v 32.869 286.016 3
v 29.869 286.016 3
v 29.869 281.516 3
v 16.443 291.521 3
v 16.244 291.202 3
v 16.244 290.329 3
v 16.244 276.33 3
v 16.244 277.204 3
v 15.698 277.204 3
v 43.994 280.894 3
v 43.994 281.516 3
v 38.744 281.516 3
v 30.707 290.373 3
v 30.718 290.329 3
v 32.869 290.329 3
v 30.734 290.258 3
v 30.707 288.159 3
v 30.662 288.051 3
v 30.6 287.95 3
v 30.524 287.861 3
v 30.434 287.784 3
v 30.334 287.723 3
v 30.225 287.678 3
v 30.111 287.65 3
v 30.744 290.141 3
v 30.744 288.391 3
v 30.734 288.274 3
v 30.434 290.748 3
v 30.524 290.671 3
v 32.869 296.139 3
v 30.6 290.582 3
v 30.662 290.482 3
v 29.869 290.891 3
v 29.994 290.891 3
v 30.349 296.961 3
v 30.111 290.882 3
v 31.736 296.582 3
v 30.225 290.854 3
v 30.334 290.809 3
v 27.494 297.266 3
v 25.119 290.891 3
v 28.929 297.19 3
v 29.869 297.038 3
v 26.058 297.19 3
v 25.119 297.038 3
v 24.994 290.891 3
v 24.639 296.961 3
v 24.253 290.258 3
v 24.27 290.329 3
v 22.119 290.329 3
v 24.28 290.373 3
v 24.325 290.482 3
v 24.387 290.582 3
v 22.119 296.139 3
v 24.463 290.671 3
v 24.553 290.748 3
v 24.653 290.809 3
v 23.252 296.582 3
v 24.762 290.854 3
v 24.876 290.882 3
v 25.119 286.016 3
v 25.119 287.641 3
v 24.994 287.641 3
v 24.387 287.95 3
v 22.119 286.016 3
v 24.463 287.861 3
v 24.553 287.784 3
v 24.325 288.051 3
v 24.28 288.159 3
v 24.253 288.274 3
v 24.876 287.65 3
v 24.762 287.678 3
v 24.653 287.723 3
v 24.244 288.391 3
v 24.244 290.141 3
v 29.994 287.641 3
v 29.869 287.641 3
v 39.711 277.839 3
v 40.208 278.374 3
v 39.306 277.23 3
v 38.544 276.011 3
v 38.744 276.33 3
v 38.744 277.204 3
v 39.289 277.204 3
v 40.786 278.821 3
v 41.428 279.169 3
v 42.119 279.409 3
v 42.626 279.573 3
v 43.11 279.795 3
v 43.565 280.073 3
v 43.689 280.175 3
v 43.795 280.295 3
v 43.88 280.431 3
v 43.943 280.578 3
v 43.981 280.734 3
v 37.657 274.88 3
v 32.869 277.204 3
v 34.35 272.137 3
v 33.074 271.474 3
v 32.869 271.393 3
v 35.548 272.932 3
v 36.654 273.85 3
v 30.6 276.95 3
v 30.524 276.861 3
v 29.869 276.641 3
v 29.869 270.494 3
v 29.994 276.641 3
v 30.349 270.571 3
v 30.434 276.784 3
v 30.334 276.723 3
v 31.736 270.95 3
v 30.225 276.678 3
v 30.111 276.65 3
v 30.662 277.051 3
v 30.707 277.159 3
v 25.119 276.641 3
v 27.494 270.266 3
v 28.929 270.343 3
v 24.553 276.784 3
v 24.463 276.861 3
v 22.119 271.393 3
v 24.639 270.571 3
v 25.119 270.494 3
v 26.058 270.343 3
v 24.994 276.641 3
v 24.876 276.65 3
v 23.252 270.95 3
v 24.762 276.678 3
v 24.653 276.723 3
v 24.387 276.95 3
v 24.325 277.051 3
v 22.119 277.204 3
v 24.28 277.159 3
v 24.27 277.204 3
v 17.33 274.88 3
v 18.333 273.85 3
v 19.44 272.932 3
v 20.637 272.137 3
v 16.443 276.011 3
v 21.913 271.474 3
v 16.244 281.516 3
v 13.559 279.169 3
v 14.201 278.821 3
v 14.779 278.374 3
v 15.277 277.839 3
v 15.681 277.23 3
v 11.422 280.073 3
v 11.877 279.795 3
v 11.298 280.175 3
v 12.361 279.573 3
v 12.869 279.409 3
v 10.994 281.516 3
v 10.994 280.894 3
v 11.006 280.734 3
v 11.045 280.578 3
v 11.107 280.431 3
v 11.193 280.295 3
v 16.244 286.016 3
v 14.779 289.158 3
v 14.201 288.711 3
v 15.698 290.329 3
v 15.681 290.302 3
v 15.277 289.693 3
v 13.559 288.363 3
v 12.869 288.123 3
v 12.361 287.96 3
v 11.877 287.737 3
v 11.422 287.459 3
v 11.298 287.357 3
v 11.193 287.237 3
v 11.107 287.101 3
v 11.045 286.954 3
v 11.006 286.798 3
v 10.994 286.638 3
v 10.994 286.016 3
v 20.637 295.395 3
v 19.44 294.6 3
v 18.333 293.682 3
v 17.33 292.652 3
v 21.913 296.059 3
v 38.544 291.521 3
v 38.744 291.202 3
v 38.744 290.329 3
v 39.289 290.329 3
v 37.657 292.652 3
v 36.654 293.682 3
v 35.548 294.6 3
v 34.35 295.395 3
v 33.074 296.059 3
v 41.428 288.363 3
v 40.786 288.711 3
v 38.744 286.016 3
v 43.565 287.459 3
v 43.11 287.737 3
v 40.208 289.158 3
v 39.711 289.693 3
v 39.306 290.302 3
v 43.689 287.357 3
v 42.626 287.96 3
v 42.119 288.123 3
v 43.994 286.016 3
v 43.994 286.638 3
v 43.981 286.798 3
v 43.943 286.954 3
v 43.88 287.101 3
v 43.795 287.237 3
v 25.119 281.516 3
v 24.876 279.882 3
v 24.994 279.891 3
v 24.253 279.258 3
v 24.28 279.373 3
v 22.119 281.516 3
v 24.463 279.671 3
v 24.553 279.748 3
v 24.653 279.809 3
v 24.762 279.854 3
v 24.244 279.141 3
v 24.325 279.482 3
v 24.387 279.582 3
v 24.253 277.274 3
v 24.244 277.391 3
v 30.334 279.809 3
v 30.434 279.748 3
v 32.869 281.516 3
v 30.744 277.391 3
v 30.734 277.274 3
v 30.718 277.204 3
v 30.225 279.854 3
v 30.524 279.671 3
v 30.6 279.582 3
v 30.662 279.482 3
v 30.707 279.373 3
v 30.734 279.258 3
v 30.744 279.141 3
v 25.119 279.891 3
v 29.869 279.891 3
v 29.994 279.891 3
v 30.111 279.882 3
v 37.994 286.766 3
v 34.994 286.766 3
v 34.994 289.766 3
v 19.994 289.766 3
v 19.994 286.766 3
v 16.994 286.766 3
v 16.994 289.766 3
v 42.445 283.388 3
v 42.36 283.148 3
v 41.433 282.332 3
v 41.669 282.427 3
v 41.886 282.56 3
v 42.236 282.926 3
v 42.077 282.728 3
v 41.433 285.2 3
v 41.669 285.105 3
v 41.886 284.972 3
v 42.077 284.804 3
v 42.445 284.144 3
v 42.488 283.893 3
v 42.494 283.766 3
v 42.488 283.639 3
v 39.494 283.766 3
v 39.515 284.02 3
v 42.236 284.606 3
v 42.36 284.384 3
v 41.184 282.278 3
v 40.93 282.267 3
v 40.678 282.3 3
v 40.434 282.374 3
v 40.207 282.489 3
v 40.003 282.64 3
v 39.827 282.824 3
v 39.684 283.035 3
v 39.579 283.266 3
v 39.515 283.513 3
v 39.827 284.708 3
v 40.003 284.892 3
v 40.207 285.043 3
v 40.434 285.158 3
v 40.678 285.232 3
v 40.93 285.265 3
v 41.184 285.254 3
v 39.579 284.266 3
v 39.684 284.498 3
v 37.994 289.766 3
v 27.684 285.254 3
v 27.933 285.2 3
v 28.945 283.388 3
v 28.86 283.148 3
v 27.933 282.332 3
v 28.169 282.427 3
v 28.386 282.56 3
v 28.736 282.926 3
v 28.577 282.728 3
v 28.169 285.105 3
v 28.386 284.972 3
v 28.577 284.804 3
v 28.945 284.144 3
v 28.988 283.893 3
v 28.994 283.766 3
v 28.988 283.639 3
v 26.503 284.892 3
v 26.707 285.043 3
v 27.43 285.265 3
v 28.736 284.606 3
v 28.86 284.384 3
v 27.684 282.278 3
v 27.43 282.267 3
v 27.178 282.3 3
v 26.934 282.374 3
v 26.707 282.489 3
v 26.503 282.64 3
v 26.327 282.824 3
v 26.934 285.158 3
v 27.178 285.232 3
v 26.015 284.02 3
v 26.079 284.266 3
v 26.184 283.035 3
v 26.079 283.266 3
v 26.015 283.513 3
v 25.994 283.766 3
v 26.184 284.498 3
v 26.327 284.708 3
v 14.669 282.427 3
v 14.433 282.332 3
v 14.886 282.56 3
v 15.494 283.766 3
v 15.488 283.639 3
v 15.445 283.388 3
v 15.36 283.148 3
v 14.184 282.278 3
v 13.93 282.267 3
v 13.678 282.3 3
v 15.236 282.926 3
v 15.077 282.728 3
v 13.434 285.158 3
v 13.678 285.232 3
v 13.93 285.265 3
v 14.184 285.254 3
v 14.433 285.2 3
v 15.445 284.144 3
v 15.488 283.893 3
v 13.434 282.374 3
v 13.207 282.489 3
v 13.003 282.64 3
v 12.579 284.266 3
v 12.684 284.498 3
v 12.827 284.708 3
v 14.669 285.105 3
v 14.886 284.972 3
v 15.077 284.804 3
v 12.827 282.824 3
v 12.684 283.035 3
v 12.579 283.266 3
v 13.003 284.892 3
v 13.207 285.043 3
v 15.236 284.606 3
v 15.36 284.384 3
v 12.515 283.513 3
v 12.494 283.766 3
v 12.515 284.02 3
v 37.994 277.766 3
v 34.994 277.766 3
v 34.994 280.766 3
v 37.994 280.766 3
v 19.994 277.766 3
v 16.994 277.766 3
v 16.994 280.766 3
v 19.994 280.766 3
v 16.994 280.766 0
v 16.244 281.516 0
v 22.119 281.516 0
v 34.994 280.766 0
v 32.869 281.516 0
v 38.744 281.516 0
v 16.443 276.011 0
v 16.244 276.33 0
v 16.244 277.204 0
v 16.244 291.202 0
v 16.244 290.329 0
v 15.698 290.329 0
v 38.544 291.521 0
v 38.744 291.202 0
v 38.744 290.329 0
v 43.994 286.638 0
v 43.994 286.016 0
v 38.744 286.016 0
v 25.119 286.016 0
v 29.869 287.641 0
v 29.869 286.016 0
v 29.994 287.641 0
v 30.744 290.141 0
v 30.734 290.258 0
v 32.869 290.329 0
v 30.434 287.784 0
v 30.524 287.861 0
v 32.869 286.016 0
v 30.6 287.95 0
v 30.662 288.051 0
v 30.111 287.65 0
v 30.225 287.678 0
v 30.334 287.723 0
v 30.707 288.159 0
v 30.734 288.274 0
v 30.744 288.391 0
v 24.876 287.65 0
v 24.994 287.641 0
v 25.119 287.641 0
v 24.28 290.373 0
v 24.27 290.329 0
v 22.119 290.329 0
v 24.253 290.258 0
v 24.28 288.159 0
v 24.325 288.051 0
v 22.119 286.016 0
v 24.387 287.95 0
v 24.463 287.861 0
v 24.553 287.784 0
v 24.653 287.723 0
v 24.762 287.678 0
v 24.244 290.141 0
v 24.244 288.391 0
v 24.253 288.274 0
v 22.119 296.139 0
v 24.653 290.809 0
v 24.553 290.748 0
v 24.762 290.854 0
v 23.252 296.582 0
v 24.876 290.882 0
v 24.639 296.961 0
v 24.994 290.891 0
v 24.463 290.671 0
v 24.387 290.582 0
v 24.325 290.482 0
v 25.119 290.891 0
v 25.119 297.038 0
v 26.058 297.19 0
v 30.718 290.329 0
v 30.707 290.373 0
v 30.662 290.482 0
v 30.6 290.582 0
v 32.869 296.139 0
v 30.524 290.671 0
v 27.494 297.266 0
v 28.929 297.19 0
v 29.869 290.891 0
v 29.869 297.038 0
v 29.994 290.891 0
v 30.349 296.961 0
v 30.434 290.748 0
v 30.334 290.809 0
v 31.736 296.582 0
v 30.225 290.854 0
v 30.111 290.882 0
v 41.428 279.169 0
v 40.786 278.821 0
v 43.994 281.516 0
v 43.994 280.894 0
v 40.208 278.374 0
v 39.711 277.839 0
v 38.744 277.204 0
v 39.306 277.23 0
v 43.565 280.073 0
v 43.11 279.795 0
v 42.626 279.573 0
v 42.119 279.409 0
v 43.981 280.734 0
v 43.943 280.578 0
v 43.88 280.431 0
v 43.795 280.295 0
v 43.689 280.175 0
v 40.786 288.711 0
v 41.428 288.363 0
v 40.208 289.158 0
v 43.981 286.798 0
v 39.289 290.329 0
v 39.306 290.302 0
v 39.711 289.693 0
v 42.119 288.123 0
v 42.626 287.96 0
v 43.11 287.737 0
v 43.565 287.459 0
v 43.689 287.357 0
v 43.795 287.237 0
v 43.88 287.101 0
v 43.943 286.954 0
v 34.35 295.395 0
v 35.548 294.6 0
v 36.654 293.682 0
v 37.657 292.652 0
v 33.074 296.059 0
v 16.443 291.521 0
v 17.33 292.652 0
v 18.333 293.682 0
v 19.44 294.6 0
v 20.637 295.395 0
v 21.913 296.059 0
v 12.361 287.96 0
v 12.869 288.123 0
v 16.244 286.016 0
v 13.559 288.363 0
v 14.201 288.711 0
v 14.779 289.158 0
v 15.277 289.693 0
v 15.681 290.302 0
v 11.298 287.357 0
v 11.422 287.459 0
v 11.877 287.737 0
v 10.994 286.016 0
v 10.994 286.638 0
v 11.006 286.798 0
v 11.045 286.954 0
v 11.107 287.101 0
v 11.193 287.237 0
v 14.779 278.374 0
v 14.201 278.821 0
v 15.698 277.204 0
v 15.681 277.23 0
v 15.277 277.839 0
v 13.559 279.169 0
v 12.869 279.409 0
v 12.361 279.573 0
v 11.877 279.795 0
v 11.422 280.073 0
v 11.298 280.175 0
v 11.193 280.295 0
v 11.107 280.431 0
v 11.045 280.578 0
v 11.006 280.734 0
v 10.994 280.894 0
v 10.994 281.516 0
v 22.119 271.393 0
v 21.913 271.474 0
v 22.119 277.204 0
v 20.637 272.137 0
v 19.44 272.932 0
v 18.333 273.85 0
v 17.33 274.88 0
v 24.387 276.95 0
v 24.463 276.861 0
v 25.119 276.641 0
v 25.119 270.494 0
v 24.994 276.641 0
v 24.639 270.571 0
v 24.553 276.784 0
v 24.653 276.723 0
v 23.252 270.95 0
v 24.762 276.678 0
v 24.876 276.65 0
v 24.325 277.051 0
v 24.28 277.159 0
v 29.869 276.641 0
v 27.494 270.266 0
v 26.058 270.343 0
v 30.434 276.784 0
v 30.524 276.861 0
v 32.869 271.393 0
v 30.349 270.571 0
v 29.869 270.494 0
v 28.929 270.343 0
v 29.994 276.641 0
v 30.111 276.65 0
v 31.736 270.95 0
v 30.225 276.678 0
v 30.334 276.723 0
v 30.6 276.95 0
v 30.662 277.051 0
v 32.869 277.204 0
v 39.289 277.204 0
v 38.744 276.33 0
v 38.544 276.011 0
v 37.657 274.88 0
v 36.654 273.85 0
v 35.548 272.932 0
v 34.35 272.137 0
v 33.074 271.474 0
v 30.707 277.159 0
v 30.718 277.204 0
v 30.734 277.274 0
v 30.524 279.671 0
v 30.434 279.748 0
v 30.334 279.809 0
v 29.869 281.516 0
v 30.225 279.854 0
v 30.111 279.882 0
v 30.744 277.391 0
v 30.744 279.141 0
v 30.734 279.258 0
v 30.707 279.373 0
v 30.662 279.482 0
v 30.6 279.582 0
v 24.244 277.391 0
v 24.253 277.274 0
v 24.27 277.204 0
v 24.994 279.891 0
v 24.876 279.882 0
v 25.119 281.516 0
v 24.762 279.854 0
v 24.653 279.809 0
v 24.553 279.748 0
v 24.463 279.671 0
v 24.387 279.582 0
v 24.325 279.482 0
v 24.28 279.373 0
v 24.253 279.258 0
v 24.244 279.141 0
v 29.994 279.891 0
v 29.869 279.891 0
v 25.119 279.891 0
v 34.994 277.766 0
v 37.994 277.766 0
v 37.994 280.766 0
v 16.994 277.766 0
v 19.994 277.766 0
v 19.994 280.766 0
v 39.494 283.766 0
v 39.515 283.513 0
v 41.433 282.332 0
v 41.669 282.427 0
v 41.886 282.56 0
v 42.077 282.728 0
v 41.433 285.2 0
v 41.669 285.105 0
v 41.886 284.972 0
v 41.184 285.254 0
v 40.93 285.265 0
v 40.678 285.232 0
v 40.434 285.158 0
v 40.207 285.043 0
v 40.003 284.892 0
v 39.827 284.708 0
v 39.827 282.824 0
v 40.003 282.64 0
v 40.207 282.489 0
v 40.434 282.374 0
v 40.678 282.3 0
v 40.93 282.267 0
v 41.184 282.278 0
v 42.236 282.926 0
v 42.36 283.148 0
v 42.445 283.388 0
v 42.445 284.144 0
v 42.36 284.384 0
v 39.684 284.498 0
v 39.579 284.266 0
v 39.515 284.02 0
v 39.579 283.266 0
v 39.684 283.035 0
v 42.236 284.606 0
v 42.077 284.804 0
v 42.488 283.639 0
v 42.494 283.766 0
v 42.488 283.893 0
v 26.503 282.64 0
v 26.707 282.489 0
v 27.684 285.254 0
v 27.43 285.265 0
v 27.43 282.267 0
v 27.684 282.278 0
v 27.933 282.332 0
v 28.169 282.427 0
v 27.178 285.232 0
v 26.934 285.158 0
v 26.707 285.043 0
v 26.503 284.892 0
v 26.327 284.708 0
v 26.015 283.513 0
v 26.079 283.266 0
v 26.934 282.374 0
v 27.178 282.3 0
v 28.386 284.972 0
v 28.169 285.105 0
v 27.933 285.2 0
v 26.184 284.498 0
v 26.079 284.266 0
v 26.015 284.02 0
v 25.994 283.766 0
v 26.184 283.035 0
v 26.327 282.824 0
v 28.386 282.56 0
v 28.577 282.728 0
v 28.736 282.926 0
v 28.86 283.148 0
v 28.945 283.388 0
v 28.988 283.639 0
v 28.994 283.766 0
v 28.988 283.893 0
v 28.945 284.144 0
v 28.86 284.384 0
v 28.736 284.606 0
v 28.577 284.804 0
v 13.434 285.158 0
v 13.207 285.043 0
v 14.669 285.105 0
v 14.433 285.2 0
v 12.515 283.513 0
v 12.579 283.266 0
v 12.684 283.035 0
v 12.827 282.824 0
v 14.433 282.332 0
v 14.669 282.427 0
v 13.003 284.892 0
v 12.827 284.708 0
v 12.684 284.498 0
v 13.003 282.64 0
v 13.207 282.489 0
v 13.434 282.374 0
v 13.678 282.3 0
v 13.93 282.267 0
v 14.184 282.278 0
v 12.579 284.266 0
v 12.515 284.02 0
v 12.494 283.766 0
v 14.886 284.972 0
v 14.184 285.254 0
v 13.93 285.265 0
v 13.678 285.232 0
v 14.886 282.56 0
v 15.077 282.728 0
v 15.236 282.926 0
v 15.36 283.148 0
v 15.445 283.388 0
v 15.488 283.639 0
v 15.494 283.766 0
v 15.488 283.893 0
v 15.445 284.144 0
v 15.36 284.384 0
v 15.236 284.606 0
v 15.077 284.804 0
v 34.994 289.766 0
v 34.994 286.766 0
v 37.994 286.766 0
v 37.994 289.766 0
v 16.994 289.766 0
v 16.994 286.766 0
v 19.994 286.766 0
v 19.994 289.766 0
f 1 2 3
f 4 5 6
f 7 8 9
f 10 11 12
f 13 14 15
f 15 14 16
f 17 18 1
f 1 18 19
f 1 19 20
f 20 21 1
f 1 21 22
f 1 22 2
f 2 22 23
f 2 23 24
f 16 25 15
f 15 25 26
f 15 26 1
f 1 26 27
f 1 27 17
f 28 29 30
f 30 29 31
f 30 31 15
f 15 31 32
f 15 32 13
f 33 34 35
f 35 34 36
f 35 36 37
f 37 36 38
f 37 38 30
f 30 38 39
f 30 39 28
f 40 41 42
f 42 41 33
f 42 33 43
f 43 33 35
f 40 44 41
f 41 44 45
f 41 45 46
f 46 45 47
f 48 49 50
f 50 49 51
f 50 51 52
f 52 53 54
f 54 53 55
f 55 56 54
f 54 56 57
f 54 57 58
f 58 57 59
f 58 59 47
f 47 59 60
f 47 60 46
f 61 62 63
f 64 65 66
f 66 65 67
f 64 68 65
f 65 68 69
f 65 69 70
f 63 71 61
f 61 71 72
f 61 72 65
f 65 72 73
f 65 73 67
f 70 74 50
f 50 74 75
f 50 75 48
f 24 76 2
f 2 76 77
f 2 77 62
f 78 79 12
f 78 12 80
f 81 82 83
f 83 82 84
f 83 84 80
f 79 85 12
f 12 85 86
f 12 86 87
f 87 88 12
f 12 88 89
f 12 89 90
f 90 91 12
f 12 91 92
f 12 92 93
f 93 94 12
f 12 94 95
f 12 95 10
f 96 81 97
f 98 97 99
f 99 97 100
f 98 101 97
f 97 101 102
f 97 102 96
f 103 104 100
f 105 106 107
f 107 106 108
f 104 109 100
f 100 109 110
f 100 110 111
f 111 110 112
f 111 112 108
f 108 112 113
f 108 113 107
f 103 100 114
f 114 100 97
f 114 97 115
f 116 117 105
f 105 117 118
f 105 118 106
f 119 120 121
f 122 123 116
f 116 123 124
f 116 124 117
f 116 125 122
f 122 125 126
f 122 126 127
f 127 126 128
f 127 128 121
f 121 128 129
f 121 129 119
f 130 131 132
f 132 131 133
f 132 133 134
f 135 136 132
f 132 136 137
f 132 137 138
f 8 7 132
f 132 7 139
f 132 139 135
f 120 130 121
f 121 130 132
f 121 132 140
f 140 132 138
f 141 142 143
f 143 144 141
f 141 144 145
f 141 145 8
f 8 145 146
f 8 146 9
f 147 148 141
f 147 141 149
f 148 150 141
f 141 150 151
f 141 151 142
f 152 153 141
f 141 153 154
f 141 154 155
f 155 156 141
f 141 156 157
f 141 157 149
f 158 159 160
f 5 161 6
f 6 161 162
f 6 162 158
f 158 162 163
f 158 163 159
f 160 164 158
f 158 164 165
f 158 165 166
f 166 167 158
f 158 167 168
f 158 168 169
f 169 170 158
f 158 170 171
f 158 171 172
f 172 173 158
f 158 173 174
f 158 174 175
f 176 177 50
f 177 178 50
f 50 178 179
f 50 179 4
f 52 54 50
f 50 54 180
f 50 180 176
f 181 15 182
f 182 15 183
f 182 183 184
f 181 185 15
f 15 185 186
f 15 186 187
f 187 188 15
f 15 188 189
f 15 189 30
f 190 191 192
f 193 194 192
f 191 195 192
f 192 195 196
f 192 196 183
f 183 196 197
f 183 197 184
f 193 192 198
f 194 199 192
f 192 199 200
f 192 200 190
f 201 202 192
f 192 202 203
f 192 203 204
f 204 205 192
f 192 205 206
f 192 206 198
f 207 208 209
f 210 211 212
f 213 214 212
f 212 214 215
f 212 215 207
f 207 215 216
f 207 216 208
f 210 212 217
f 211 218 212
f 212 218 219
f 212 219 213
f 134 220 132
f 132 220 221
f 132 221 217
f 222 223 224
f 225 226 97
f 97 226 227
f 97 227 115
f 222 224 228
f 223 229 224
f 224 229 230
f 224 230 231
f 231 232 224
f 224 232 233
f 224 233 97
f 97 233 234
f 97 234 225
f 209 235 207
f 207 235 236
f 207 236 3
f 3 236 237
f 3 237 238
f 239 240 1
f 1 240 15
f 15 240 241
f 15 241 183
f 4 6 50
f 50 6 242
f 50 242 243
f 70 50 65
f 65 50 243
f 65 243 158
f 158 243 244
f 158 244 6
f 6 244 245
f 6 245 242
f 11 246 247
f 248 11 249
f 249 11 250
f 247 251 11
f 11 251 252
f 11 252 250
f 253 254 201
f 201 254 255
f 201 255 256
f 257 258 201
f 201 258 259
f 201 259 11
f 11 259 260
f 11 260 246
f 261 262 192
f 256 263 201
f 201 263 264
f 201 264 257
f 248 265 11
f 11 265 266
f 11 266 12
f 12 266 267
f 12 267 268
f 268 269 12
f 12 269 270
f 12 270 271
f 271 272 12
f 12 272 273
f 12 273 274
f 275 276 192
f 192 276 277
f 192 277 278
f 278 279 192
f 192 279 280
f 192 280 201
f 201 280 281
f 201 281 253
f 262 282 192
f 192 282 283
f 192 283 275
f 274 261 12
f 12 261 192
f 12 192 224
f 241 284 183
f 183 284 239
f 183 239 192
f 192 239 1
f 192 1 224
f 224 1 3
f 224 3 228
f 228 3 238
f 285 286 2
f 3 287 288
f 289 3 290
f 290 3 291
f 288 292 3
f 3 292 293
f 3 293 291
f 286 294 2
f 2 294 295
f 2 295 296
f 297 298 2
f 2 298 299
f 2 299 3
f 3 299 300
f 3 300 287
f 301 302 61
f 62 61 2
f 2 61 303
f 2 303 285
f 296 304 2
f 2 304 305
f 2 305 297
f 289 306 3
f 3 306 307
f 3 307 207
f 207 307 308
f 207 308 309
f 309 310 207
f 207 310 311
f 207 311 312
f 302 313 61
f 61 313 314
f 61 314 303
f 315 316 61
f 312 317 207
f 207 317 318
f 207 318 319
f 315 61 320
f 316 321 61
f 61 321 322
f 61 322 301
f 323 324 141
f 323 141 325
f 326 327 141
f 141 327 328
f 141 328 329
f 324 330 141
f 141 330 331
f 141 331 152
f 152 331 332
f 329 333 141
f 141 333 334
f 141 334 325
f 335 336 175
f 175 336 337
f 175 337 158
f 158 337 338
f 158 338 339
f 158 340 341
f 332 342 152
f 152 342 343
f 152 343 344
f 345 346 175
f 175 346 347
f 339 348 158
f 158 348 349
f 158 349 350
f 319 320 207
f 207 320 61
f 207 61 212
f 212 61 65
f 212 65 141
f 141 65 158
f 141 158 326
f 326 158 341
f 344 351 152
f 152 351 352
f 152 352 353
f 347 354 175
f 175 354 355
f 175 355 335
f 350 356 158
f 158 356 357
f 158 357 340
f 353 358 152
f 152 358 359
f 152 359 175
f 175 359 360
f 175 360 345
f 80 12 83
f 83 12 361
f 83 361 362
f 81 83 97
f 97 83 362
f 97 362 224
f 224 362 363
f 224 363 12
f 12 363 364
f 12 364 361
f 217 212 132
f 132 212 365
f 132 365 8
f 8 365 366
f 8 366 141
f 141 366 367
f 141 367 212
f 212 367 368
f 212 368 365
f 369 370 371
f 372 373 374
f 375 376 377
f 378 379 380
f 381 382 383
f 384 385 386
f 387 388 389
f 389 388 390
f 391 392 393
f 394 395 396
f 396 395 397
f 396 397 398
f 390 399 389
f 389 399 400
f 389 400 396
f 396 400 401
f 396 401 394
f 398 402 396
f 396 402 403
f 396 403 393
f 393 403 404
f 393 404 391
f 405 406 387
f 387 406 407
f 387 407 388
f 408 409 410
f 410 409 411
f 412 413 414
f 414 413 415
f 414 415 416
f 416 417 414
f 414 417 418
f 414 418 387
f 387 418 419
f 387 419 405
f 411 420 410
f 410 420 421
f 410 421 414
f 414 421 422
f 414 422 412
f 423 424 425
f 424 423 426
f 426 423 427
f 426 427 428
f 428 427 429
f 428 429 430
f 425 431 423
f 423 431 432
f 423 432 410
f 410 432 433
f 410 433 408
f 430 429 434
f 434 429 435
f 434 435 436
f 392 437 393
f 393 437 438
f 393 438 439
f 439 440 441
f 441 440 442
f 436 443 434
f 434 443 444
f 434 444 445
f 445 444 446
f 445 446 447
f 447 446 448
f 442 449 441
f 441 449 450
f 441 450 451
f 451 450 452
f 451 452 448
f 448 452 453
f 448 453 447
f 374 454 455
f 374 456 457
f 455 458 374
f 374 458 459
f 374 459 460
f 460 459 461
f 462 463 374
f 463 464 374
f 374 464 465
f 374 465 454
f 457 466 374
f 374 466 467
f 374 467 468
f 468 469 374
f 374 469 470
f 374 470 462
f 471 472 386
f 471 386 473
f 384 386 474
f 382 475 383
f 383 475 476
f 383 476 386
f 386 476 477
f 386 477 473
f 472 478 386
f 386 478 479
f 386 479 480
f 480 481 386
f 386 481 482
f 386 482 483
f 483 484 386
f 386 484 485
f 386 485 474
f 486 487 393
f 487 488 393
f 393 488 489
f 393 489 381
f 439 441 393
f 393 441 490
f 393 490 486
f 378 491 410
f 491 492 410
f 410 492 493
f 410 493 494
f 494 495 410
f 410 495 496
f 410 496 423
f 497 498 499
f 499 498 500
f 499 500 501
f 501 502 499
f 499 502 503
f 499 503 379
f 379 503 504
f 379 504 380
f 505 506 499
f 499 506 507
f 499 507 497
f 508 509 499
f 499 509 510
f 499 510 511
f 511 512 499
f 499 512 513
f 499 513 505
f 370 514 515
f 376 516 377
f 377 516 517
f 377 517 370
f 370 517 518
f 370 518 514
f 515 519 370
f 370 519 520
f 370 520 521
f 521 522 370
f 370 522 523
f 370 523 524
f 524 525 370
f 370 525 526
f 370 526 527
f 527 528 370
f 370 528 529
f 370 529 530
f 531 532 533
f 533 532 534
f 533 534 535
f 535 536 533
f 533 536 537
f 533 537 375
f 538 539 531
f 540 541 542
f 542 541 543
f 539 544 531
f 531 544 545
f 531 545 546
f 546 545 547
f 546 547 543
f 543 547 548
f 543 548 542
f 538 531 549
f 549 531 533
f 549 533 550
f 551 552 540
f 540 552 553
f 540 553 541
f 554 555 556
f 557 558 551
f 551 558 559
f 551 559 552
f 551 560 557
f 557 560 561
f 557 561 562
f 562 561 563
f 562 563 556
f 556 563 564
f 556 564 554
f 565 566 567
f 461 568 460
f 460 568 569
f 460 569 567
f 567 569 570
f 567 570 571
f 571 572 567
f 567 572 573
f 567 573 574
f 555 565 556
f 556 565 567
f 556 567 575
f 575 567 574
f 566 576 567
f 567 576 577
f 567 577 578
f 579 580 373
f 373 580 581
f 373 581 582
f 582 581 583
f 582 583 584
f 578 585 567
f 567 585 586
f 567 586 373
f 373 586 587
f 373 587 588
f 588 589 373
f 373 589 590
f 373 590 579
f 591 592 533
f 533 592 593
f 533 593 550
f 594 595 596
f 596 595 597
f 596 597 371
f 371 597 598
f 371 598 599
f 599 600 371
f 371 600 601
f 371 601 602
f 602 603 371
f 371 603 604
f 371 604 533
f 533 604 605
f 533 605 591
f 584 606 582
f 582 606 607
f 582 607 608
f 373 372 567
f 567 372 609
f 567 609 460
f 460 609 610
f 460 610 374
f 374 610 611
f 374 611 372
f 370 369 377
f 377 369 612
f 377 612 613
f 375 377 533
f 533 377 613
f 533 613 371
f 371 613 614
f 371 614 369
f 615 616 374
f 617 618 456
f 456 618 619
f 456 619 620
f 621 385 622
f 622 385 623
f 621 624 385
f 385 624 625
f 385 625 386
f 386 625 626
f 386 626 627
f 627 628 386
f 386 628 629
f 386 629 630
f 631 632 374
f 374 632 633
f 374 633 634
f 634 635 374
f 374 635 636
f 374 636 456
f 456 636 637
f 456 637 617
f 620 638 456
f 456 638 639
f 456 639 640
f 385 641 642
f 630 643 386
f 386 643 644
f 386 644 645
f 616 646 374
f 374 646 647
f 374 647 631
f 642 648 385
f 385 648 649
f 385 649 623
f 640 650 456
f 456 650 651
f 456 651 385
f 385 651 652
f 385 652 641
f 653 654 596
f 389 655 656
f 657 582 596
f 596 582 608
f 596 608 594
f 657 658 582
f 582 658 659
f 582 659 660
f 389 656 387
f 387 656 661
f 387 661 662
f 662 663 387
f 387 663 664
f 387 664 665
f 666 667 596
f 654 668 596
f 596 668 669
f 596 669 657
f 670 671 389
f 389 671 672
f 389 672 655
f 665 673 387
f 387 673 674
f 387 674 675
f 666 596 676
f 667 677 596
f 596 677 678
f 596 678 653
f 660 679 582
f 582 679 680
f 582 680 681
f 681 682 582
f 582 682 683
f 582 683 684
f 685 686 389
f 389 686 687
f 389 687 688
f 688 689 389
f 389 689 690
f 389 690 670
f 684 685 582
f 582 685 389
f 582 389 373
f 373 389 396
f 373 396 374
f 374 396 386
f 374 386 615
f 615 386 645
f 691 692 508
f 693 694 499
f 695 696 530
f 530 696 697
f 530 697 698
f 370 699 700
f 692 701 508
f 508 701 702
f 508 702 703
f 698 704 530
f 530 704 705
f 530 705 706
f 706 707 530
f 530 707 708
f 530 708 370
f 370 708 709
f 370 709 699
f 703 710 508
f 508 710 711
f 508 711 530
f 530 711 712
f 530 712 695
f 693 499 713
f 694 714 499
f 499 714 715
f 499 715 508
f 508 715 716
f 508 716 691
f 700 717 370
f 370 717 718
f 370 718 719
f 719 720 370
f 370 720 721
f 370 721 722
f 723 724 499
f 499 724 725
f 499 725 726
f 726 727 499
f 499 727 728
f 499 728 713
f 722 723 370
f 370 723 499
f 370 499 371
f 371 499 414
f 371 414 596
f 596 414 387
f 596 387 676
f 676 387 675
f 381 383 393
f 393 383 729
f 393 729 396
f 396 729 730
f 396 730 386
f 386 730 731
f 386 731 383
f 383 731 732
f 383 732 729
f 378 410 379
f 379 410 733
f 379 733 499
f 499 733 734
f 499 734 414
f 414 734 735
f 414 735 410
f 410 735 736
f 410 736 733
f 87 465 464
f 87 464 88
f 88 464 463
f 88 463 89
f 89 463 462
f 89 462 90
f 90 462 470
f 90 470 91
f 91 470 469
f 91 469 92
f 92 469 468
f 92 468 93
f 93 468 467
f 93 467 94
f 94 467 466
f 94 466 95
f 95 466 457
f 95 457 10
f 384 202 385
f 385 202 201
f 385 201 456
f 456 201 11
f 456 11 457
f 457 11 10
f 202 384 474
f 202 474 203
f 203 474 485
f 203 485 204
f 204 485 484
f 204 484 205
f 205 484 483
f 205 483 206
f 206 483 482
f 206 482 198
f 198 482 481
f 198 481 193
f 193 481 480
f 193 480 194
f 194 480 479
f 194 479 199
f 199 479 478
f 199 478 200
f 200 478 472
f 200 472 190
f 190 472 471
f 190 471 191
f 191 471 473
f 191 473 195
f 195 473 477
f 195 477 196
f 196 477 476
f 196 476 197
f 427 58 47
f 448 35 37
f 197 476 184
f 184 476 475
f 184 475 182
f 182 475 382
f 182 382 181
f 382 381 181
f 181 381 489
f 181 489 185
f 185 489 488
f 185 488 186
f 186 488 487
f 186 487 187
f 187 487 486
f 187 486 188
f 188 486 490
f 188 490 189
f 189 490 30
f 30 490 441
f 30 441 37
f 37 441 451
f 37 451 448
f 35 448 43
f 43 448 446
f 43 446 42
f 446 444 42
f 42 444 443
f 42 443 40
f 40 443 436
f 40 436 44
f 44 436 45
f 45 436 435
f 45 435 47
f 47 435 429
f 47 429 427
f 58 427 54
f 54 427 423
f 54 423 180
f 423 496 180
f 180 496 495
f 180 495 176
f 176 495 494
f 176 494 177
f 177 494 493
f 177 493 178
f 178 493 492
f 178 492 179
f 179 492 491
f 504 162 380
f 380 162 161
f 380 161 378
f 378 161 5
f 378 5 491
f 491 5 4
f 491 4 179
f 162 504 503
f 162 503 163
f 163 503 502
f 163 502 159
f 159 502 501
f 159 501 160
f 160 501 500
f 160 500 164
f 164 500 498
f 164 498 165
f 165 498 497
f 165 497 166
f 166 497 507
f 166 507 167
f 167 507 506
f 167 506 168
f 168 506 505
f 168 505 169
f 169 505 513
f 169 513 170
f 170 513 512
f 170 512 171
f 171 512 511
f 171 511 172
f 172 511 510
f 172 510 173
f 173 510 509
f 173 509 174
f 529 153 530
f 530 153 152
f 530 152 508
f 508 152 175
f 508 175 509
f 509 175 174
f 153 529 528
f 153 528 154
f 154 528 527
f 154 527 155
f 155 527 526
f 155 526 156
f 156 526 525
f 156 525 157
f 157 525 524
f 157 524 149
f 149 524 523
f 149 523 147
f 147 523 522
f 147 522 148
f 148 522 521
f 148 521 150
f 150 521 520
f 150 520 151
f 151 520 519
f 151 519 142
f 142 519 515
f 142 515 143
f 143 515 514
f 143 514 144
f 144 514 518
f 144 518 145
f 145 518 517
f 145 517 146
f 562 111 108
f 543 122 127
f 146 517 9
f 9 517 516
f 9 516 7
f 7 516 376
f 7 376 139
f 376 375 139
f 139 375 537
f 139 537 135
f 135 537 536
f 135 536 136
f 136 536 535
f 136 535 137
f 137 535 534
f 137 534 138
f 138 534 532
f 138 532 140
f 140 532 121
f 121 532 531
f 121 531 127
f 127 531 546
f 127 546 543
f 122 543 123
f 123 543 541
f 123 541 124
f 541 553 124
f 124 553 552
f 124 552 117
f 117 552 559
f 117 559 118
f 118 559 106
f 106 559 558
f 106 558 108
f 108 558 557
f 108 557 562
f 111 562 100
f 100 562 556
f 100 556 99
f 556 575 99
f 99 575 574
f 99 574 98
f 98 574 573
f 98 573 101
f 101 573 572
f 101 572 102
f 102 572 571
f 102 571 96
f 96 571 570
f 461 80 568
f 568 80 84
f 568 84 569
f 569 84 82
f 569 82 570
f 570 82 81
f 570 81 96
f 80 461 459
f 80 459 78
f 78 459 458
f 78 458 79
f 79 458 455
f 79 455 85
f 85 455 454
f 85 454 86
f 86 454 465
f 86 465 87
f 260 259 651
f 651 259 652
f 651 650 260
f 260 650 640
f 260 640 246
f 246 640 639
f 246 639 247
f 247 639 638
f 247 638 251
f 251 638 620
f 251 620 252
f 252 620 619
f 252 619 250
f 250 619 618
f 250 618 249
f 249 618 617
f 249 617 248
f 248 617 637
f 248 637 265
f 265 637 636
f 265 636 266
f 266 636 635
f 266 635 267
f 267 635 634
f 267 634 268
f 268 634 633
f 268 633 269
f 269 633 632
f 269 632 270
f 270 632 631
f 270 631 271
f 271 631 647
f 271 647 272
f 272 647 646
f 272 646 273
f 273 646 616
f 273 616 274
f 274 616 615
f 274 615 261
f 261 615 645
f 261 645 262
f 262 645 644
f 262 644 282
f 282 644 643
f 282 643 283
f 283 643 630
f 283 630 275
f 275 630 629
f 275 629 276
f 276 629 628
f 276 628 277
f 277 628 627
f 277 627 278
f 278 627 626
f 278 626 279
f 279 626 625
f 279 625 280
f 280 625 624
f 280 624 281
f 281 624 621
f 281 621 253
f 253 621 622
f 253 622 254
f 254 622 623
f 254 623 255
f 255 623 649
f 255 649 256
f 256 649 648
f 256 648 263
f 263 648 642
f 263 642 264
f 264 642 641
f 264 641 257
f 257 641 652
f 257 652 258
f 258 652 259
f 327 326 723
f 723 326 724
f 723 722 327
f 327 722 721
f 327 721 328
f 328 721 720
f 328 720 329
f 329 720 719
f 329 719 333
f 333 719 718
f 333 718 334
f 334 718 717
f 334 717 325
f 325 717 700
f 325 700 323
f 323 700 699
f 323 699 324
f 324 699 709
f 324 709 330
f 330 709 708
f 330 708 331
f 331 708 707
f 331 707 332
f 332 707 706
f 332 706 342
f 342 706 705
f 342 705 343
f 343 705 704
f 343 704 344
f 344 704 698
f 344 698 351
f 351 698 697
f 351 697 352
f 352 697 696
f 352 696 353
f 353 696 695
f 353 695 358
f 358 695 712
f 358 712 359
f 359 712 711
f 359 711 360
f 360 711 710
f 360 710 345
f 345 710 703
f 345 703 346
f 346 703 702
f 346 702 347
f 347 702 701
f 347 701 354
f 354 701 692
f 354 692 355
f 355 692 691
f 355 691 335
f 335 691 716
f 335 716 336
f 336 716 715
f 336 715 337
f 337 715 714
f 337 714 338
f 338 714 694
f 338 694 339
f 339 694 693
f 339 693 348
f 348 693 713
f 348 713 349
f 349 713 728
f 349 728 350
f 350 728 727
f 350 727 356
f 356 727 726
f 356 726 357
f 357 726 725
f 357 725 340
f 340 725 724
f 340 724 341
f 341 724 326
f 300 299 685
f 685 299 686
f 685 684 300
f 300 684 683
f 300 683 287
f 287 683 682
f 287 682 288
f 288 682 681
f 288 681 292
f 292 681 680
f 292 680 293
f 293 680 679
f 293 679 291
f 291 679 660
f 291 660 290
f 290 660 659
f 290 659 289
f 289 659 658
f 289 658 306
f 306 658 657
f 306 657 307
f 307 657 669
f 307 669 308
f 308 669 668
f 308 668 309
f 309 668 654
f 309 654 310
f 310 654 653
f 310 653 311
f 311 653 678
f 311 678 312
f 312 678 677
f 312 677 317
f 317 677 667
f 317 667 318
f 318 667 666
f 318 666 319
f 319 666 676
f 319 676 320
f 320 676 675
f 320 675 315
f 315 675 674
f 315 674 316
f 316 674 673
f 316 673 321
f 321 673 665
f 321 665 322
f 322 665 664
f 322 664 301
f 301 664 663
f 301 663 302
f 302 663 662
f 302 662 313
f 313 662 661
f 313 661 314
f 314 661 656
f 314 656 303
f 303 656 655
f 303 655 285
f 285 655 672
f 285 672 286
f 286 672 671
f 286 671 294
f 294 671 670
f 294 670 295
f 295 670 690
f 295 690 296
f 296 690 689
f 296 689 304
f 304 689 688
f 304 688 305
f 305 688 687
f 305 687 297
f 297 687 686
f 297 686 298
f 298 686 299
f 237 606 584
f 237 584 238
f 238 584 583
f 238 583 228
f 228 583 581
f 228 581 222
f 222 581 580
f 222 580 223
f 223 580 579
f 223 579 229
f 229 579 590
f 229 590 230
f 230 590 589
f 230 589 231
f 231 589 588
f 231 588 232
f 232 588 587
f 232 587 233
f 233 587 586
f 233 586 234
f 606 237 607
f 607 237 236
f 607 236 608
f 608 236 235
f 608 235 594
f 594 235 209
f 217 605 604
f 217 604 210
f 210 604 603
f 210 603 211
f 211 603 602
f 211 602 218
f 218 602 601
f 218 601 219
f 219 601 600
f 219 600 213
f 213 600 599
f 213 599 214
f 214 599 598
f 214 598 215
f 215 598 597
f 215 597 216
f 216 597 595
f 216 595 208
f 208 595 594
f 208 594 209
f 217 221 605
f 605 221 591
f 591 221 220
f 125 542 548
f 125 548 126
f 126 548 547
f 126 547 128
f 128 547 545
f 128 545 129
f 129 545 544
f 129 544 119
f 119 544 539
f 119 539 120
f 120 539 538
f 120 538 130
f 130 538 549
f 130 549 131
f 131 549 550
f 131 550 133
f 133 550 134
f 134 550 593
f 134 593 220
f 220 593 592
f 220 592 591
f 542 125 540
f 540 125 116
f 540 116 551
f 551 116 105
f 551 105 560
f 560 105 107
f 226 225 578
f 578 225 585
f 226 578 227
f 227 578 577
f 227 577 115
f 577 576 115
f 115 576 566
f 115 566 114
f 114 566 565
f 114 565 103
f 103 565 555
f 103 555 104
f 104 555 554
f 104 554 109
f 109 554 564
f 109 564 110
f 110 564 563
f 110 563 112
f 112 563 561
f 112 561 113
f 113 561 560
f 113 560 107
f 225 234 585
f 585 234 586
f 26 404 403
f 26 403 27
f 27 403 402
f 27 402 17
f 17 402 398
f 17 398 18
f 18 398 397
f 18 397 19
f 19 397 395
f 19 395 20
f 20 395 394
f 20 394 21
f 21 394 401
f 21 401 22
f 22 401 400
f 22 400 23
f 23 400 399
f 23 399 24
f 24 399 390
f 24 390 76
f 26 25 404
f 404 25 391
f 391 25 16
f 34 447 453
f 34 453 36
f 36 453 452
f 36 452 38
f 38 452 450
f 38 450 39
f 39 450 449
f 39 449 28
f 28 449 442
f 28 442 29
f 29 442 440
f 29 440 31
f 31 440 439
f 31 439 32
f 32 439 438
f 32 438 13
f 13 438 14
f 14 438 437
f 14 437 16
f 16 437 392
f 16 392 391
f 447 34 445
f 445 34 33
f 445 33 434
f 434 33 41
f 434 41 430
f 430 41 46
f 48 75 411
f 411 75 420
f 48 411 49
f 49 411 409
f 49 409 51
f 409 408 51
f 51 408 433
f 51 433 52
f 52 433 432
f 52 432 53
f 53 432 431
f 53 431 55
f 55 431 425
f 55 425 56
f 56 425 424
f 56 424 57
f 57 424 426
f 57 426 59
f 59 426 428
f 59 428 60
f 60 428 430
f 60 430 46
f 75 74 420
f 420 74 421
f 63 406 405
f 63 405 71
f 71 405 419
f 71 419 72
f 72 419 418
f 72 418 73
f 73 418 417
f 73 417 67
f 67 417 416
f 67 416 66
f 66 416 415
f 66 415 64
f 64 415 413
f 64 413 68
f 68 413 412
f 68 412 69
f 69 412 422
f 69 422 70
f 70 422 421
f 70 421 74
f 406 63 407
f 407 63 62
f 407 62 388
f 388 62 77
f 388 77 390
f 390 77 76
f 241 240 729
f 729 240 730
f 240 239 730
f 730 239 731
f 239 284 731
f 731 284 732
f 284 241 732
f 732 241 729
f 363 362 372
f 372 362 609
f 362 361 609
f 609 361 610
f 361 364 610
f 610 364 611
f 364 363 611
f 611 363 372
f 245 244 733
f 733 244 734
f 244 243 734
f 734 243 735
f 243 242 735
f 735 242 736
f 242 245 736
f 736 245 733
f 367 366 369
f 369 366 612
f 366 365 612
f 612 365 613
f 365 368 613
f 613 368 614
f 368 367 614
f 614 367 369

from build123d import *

# Parameters (mm, degrees)
MODEL_R                 = 1.5
MODEL_W                 = 3
MODEL_H                 = 3
SALIENTE_EXTRUIR1_DEPTH = 3


with BuildPart() as part:
    # Model → Saliente-Extruir1 (new body)
    with BuildSketch(Plane.XY):
        with BuildLine():
            Line((10.993657745, 286.638352596), (10.993657745, 280.893789949))
            ThreePointArc((10.993657745, 280.893789949), (11.107252484, 280.430879899), (11.422229173, 280.073138143))
            ThreePointArc((11.422229173, 280.073138143), (12.115845844, 279.676594232), (12.868657745, 279.408965008))
            ThreePointArc((12.868657745, 279.408965008), (14.499333705, 278.609421111), (15.681157745, 277.230411876))
            ThreePointArc((15.681157745, 277.230411876), (27.493657745, 270.266071273), (39.306157745, 277.230411876))
            ThreePointArc((39.306157745, 277.230411876), (40.487981784, 278.609421111), (42.118657745, 279.408965008))
            ThreePointArc((42.118657745, 279.408965008), (42.871469645, 279.676594232), (43.565086316, 280.073138143))
            ThreePointArc((43.565086316, 280.073138143), (43.880063005, 280.430879899), (43.993657745, 280.893789949))
            Line((43.993657745, 280.893789949), (43.993657745, 286.638352596))
            ThreePointArc((43.993657745, 286.638352596), (43.880063005, 287.101262646), (43.565086316, 287.459004403))
            ThreePointArc((43.565086316, 287.459004403), (42.871469645, 287.855548313), (42.118657745, 288.123177537))
            ThreePointArc((42.118657745, 288.123177537), (40.487981784, 288.922721434), (39.306157745, 290.301730669))
            ThreePointArc((39.306157745, 290.301730669), (27.493657745, 297.266071273), (15.681157745, 290.301730669))
            ThreePointArc((15.681157745, 290.301730669), (14.499333705, 288.922721434), (12.868657745, 288.123177537))
            ThreePointArc((12.868657745, 288.123177537), (12.115845844, 287.855548313), (11.422229173, 287.459004403))
            ThreePointArc((11.422229173, 287.459004403), (11.107252484, 287.101262646), (10.993657745, 286.638352596))
        make_face()
        with Locations((40.993657745, 283.766071273)):
            Circle(MODEL_R, mode=Mode.SUBTRACT)
        with Locations((13.993657745, 283.766071273)):
            Circle(MODEL_R, mode=Mode.SUBTRACT)
        with Locations((27.493657745, 283.766071273)):
            Circle(MODEL_R, mode=Mode.SUBTRACT)
        with Locations((36.493657745, 288.266071273)):
            Rectangle(MODEL_W, MODEL_H, mode=Mode.SUBTRACT)
        with Locations((36.493657745, 279.266071273)):
            Rectangle(MODEL_W, MODEL_H, mode=Mode.SUBTRACT)
        with Locations((18.493657745, 288.266071273)):
            Rectangle(MODEL_W, MODEL_H, mode=Mode.SUBTRACT)
        with Locations((18.493657745, 279.266071273)):
            Rectangle(MODEL_W, MODEL_H, mode=Mode.SUBTRACT)
        with BuildLine():
            Line((30.743657745, 277.391071273), (30.743657745, 279.141071273))
            ThreePointArc((30.743657745, 279.141071273), (30.52398783, 279.671401358), (29.993657745, 279.891071273))
            Line((29.993657745, 279.891071273), (24.993657745, 279.891071273))
            ThreePointArc((24.993657745, 279.891071273), (24.463327659, 279.671401358), (24.243657745, 279.141071273))
            Line((24.243657745, 279.141071273), (24.243657745, 277.391071273))
            ThreePointArc((24.243657745, 277.391071273), (24.463327659, 276.860741187), (24.993657745, 276.641071273))
            Line((24.993657745, 276.641071273), (29.993657745, 276.641071273))
            ThreePointArc((29.993657745, 276.641071273), (30.52398783, 276.860741187), (30.743657745, 277.391071273))
        make_face(mode=Mode.SUBTRACT)
        with BuildLine():
            Line((30.743657745, 290.141071273), (30.743657745, 288.391071273))
            ThreePointArc((30.743657745, 288.391071273), (30.52398783, 287.860741187), (29.993657745, 287.641071273))
            Line((29.993657745, 287.641071273), (24.993657745, 287.641071273))
            ThreePointArc((24.993657745, 287.641071273), (24.463327659, 287.860741187), (24.243657745, 288.391071273))
            Line((24.243657745, 288.391071273), (24.243657745, 290.141071273))
            ThreePointArc((24.243657745, 290.141071273), (24.463327659, 290.671401358), (24.993657745, 290.891071273))
            Line((24.993657745, 290.891071273), (29.993657745, 290.891071273))
            ThreePointArc((29.993657745, 290.891071273), (30.52398783, 290.671401358), (30.743657745, 290.141071273))
        make_face(mode=Mode.SUBTRACT)
    extrude(amount=SALIENTE_EXTRUIR1_DEPTH)


solid = part.part
